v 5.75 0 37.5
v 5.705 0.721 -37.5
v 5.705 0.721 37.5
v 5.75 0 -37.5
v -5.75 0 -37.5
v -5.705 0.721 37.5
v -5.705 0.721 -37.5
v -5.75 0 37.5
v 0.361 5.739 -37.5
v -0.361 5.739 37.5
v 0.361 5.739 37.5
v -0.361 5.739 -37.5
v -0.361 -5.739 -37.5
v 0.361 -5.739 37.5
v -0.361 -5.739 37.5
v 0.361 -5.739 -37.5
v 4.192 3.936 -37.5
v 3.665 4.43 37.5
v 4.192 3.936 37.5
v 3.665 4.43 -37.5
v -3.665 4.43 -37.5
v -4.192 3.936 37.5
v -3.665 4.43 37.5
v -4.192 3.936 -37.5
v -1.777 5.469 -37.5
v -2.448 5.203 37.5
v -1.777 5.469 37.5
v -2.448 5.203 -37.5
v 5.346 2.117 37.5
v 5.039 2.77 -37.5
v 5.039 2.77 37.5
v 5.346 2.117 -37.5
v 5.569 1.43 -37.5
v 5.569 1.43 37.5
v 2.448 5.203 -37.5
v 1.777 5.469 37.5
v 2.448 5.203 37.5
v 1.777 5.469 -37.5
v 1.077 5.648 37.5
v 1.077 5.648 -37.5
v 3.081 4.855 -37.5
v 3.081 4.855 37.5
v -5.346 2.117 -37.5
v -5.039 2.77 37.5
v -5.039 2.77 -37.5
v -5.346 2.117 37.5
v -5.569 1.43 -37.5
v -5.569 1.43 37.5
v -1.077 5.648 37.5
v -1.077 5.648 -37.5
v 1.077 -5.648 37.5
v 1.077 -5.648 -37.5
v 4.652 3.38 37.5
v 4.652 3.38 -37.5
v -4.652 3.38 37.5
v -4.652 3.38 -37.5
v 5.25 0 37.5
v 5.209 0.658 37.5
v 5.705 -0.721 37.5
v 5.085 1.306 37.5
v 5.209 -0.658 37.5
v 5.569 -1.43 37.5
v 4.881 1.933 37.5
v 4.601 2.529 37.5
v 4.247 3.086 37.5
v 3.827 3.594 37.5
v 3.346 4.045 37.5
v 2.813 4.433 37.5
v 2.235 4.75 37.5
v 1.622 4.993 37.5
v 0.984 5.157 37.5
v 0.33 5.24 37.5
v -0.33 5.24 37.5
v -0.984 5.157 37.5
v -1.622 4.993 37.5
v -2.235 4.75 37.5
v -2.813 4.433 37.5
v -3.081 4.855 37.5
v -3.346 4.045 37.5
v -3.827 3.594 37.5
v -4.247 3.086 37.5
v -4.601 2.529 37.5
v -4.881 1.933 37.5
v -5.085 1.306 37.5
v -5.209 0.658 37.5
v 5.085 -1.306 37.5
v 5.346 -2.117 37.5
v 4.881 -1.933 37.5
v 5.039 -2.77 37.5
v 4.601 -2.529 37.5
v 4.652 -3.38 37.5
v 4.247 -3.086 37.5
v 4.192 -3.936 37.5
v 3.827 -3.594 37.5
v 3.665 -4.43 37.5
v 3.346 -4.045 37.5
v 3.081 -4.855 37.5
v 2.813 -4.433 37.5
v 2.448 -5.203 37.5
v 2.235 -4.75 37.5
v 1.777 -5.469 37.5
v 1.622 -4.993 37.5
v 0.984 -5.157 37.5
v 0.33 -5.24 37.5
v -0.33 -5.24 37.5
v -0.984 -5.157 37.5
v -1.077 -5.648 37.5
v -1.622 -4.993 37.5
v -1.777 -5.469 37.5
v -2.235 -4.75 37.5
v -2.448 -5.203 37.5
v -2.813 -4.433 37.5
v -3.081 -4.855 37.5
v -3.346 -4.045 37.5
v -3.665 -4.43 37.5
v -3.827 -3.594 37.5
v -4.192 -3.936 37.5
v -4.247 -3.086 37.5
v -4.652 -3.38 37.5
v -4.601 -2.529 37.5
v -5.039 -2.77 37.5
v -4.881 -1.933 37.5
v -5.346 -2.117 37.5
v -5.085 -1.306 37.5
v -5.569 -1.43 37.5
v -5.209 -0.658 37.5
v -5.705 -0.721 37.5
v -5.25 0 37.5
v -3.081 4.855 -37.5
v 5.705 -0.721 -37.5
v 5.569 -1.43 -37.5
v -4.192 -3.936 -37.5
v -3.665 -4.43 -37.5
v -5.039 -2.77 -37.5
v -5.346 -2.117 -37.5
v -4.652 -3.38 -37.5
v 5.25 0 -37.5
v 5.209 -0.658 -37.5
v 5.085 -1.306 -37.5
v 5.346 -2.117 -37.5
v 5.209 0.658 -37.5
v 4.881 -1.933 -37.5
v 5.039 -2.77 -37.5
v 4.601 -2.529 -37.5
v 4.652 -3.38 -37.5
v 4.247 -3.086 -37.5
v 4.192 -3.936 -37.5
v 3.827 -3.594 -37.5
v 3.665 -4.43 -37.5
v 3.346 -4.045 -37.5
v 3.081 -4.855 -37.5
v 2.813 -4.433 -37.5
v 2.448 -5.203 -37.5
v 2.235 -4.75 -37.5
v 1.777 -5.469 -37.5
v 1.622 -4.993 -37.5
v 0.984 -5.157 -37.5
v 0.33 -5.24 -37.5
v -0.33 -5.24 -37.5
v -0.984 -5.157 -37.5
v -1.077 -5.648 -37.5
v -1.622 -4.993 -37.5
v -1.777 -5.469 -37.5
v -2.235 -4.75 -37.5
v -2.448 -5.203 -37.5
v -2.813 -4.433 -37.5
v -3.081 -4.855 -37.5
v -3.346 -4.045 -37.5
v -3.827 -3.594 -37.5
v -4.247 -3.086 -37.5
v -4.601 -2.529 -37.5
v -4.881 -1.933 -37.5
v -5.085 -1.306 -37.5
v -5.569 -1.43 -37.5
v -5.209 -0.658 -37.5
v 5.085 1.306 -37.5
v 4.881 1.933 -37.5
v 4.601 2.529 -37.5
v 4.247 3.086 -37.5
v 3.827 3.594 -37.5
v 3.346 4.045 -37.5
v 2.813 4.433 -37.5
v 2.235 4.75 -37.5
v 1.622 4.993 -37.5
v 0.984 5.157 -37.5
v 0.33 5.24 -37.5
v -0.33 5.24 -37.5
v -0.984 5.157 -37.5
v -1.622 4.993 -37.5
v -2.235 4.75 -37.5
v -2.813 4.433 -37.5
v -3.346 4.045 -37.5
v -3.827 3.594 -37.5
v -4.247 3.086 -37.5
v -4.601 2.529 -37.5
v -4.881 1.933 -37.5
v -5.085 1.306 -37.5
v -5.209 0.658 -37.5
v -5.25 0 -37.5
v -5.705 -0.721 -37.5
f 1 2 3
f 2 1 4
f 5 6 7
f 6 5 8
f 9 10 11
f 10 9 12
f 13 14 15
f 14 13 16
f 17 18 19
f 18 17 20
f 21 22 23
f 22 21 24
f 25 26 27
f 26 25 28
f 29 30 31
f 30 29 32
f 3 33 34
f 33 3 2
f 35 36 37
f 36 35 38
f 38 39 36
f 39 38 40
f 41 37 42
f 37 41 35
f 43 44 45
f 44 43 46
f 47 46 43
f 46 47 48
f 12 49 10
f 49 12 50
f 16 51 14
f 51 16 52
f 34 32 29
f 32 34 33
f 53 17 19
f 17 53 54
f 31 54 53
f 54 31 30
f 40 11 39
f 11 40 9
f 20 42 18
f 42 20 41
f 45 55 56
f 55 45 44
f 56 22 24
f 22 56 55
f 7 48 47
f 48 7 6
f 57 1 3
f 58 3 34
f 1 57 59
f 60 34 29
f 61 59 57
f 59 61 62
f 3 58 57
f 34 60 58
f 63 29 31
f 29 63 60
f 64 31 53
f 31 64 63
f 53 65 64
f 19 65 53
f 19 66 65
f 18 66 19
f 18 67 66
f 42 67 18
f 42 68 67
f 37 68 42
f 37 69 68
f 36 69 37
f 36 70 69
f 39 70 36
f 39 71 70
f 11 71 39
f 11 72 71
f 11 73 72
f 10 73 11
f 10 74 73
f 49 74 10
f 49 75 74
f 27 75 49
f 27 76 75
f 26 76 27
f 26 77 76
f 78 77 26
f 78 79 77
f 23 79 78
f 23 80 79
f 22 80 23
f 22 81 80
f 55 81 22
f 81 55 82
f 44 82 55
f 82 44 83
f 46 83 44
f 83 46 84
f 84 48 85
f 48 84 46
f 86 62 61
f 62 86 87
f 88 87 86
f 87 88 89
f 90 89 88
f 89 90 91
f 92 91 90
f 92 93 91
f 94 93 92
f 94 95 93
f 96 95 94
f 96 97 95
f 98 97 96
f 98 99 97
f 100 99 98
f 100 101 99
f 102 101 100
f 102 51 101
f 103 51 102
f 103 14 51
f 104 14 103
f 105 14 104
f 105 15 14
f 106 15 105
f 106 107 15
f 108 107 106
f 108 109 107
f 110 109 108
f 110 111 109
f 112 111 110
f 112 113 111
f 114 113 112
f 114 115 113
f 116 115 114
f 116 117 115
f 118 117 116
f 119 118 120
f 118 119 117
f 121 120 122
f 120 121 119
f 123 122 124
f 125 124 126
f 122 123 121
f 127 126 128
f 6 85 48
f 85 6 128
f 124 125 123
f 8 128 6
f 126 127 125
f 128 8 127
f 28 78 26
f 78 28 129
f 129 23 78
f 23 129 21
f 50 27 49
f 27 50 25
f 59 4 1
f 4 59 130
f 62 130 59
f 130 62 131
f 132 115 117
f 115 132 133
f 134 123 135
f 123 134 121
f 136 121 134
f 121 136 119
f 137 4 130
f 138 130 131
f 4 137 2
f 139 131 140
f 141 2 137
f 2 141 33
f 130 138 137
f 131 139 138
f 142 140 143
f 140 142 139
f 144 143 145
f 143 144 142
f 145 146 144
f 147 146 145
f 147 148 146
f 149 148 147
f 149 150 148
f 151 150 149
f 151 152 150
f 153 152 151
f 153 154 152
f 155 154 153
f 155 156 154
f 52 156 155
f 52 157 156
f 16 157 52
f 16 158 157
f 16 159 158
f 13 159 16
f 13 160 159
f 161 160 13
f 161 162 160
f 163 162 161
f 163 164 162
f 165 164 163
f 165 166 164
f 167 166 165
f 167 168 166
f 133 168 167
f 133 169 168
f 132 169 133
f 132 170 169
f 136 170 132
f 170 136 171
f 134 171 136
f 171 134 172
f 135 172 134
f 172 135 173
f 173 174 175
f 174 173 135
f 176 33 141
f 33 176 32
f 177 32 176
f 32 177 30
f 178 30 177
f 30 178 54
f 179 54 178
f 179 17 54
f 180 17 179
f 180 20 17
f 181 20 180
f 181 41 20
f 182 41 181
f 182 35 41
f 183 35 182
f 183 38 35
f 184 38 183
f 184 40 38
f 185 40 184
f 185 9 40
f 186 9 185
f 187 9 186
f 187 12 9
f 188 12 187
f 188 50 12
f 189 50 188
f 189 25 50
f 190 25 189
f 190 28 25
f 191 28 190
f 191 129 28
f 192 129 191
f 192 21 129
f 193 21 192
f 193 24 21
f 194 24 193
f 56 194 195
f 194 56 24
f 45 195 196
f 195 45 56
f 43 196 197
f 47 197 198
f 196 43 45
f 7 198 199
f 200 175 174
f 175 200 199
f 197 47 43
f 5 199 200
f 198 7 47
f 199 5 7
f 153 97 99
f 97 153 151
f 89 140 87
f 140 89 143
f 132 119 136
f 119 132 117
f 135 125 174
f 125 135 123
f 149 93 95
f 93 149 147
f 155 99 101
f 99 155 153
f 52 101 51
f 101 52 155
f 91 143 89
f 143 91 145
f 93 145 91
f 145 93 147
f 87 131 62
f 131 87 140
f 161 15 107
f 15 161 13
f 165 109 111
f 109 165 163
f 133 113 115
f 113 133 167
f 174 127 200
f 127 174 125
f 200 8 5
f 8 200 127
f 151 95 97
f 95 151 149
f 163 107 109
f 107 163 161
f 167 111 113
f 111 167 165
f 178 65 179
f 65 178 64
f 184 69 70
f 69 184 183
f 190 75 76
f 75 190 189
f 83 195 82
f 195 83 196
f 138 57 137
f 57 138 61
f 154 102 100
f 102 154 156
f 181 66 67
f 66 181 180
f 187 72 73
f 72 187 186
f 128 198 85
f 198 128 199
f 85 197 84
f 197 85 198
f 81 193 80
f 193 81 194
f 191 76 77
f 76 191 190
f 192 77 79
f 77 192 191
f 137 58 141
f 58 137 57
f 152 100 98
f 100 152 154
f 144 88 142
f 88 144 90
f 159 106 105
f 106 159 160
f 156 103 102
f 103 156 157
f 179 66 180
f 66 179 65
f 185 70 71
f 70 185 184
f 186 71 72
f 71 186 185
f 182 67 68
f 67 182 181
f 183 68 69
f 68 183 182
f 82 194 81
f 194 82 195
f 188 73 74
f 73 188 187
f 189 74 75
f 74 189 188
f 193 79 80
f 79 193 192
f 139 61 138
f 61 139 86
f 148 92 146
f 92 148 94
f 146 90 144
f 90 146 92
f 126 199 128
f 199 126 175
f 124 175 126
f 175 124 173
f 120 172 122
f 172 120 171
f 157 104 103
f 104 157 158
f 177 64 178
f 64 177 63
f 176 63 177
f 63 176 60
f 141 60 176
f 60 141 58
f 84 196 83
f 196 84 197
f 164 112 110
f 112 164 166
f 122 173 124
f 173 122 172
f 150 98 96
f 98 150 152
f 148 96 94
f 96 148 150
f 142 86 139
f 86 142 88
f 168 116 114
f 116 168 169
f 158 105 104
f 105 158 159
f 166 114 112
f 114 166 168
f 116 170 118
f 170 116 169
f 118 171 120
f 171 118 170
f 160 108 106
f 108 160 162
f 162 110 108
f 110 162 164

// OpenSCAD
$fn = 50;


difference() {
	union() {
		translate(v = [0, 0, -37.5000000000]) {
			cylinder(h = 75, r = 5.7500000000);
		}
	}
	union() {
		translate(v = [0, 0, -100.0000000000]) {
			cylinder(h = 200, r = 5.2500000000);
		}
	}
}
